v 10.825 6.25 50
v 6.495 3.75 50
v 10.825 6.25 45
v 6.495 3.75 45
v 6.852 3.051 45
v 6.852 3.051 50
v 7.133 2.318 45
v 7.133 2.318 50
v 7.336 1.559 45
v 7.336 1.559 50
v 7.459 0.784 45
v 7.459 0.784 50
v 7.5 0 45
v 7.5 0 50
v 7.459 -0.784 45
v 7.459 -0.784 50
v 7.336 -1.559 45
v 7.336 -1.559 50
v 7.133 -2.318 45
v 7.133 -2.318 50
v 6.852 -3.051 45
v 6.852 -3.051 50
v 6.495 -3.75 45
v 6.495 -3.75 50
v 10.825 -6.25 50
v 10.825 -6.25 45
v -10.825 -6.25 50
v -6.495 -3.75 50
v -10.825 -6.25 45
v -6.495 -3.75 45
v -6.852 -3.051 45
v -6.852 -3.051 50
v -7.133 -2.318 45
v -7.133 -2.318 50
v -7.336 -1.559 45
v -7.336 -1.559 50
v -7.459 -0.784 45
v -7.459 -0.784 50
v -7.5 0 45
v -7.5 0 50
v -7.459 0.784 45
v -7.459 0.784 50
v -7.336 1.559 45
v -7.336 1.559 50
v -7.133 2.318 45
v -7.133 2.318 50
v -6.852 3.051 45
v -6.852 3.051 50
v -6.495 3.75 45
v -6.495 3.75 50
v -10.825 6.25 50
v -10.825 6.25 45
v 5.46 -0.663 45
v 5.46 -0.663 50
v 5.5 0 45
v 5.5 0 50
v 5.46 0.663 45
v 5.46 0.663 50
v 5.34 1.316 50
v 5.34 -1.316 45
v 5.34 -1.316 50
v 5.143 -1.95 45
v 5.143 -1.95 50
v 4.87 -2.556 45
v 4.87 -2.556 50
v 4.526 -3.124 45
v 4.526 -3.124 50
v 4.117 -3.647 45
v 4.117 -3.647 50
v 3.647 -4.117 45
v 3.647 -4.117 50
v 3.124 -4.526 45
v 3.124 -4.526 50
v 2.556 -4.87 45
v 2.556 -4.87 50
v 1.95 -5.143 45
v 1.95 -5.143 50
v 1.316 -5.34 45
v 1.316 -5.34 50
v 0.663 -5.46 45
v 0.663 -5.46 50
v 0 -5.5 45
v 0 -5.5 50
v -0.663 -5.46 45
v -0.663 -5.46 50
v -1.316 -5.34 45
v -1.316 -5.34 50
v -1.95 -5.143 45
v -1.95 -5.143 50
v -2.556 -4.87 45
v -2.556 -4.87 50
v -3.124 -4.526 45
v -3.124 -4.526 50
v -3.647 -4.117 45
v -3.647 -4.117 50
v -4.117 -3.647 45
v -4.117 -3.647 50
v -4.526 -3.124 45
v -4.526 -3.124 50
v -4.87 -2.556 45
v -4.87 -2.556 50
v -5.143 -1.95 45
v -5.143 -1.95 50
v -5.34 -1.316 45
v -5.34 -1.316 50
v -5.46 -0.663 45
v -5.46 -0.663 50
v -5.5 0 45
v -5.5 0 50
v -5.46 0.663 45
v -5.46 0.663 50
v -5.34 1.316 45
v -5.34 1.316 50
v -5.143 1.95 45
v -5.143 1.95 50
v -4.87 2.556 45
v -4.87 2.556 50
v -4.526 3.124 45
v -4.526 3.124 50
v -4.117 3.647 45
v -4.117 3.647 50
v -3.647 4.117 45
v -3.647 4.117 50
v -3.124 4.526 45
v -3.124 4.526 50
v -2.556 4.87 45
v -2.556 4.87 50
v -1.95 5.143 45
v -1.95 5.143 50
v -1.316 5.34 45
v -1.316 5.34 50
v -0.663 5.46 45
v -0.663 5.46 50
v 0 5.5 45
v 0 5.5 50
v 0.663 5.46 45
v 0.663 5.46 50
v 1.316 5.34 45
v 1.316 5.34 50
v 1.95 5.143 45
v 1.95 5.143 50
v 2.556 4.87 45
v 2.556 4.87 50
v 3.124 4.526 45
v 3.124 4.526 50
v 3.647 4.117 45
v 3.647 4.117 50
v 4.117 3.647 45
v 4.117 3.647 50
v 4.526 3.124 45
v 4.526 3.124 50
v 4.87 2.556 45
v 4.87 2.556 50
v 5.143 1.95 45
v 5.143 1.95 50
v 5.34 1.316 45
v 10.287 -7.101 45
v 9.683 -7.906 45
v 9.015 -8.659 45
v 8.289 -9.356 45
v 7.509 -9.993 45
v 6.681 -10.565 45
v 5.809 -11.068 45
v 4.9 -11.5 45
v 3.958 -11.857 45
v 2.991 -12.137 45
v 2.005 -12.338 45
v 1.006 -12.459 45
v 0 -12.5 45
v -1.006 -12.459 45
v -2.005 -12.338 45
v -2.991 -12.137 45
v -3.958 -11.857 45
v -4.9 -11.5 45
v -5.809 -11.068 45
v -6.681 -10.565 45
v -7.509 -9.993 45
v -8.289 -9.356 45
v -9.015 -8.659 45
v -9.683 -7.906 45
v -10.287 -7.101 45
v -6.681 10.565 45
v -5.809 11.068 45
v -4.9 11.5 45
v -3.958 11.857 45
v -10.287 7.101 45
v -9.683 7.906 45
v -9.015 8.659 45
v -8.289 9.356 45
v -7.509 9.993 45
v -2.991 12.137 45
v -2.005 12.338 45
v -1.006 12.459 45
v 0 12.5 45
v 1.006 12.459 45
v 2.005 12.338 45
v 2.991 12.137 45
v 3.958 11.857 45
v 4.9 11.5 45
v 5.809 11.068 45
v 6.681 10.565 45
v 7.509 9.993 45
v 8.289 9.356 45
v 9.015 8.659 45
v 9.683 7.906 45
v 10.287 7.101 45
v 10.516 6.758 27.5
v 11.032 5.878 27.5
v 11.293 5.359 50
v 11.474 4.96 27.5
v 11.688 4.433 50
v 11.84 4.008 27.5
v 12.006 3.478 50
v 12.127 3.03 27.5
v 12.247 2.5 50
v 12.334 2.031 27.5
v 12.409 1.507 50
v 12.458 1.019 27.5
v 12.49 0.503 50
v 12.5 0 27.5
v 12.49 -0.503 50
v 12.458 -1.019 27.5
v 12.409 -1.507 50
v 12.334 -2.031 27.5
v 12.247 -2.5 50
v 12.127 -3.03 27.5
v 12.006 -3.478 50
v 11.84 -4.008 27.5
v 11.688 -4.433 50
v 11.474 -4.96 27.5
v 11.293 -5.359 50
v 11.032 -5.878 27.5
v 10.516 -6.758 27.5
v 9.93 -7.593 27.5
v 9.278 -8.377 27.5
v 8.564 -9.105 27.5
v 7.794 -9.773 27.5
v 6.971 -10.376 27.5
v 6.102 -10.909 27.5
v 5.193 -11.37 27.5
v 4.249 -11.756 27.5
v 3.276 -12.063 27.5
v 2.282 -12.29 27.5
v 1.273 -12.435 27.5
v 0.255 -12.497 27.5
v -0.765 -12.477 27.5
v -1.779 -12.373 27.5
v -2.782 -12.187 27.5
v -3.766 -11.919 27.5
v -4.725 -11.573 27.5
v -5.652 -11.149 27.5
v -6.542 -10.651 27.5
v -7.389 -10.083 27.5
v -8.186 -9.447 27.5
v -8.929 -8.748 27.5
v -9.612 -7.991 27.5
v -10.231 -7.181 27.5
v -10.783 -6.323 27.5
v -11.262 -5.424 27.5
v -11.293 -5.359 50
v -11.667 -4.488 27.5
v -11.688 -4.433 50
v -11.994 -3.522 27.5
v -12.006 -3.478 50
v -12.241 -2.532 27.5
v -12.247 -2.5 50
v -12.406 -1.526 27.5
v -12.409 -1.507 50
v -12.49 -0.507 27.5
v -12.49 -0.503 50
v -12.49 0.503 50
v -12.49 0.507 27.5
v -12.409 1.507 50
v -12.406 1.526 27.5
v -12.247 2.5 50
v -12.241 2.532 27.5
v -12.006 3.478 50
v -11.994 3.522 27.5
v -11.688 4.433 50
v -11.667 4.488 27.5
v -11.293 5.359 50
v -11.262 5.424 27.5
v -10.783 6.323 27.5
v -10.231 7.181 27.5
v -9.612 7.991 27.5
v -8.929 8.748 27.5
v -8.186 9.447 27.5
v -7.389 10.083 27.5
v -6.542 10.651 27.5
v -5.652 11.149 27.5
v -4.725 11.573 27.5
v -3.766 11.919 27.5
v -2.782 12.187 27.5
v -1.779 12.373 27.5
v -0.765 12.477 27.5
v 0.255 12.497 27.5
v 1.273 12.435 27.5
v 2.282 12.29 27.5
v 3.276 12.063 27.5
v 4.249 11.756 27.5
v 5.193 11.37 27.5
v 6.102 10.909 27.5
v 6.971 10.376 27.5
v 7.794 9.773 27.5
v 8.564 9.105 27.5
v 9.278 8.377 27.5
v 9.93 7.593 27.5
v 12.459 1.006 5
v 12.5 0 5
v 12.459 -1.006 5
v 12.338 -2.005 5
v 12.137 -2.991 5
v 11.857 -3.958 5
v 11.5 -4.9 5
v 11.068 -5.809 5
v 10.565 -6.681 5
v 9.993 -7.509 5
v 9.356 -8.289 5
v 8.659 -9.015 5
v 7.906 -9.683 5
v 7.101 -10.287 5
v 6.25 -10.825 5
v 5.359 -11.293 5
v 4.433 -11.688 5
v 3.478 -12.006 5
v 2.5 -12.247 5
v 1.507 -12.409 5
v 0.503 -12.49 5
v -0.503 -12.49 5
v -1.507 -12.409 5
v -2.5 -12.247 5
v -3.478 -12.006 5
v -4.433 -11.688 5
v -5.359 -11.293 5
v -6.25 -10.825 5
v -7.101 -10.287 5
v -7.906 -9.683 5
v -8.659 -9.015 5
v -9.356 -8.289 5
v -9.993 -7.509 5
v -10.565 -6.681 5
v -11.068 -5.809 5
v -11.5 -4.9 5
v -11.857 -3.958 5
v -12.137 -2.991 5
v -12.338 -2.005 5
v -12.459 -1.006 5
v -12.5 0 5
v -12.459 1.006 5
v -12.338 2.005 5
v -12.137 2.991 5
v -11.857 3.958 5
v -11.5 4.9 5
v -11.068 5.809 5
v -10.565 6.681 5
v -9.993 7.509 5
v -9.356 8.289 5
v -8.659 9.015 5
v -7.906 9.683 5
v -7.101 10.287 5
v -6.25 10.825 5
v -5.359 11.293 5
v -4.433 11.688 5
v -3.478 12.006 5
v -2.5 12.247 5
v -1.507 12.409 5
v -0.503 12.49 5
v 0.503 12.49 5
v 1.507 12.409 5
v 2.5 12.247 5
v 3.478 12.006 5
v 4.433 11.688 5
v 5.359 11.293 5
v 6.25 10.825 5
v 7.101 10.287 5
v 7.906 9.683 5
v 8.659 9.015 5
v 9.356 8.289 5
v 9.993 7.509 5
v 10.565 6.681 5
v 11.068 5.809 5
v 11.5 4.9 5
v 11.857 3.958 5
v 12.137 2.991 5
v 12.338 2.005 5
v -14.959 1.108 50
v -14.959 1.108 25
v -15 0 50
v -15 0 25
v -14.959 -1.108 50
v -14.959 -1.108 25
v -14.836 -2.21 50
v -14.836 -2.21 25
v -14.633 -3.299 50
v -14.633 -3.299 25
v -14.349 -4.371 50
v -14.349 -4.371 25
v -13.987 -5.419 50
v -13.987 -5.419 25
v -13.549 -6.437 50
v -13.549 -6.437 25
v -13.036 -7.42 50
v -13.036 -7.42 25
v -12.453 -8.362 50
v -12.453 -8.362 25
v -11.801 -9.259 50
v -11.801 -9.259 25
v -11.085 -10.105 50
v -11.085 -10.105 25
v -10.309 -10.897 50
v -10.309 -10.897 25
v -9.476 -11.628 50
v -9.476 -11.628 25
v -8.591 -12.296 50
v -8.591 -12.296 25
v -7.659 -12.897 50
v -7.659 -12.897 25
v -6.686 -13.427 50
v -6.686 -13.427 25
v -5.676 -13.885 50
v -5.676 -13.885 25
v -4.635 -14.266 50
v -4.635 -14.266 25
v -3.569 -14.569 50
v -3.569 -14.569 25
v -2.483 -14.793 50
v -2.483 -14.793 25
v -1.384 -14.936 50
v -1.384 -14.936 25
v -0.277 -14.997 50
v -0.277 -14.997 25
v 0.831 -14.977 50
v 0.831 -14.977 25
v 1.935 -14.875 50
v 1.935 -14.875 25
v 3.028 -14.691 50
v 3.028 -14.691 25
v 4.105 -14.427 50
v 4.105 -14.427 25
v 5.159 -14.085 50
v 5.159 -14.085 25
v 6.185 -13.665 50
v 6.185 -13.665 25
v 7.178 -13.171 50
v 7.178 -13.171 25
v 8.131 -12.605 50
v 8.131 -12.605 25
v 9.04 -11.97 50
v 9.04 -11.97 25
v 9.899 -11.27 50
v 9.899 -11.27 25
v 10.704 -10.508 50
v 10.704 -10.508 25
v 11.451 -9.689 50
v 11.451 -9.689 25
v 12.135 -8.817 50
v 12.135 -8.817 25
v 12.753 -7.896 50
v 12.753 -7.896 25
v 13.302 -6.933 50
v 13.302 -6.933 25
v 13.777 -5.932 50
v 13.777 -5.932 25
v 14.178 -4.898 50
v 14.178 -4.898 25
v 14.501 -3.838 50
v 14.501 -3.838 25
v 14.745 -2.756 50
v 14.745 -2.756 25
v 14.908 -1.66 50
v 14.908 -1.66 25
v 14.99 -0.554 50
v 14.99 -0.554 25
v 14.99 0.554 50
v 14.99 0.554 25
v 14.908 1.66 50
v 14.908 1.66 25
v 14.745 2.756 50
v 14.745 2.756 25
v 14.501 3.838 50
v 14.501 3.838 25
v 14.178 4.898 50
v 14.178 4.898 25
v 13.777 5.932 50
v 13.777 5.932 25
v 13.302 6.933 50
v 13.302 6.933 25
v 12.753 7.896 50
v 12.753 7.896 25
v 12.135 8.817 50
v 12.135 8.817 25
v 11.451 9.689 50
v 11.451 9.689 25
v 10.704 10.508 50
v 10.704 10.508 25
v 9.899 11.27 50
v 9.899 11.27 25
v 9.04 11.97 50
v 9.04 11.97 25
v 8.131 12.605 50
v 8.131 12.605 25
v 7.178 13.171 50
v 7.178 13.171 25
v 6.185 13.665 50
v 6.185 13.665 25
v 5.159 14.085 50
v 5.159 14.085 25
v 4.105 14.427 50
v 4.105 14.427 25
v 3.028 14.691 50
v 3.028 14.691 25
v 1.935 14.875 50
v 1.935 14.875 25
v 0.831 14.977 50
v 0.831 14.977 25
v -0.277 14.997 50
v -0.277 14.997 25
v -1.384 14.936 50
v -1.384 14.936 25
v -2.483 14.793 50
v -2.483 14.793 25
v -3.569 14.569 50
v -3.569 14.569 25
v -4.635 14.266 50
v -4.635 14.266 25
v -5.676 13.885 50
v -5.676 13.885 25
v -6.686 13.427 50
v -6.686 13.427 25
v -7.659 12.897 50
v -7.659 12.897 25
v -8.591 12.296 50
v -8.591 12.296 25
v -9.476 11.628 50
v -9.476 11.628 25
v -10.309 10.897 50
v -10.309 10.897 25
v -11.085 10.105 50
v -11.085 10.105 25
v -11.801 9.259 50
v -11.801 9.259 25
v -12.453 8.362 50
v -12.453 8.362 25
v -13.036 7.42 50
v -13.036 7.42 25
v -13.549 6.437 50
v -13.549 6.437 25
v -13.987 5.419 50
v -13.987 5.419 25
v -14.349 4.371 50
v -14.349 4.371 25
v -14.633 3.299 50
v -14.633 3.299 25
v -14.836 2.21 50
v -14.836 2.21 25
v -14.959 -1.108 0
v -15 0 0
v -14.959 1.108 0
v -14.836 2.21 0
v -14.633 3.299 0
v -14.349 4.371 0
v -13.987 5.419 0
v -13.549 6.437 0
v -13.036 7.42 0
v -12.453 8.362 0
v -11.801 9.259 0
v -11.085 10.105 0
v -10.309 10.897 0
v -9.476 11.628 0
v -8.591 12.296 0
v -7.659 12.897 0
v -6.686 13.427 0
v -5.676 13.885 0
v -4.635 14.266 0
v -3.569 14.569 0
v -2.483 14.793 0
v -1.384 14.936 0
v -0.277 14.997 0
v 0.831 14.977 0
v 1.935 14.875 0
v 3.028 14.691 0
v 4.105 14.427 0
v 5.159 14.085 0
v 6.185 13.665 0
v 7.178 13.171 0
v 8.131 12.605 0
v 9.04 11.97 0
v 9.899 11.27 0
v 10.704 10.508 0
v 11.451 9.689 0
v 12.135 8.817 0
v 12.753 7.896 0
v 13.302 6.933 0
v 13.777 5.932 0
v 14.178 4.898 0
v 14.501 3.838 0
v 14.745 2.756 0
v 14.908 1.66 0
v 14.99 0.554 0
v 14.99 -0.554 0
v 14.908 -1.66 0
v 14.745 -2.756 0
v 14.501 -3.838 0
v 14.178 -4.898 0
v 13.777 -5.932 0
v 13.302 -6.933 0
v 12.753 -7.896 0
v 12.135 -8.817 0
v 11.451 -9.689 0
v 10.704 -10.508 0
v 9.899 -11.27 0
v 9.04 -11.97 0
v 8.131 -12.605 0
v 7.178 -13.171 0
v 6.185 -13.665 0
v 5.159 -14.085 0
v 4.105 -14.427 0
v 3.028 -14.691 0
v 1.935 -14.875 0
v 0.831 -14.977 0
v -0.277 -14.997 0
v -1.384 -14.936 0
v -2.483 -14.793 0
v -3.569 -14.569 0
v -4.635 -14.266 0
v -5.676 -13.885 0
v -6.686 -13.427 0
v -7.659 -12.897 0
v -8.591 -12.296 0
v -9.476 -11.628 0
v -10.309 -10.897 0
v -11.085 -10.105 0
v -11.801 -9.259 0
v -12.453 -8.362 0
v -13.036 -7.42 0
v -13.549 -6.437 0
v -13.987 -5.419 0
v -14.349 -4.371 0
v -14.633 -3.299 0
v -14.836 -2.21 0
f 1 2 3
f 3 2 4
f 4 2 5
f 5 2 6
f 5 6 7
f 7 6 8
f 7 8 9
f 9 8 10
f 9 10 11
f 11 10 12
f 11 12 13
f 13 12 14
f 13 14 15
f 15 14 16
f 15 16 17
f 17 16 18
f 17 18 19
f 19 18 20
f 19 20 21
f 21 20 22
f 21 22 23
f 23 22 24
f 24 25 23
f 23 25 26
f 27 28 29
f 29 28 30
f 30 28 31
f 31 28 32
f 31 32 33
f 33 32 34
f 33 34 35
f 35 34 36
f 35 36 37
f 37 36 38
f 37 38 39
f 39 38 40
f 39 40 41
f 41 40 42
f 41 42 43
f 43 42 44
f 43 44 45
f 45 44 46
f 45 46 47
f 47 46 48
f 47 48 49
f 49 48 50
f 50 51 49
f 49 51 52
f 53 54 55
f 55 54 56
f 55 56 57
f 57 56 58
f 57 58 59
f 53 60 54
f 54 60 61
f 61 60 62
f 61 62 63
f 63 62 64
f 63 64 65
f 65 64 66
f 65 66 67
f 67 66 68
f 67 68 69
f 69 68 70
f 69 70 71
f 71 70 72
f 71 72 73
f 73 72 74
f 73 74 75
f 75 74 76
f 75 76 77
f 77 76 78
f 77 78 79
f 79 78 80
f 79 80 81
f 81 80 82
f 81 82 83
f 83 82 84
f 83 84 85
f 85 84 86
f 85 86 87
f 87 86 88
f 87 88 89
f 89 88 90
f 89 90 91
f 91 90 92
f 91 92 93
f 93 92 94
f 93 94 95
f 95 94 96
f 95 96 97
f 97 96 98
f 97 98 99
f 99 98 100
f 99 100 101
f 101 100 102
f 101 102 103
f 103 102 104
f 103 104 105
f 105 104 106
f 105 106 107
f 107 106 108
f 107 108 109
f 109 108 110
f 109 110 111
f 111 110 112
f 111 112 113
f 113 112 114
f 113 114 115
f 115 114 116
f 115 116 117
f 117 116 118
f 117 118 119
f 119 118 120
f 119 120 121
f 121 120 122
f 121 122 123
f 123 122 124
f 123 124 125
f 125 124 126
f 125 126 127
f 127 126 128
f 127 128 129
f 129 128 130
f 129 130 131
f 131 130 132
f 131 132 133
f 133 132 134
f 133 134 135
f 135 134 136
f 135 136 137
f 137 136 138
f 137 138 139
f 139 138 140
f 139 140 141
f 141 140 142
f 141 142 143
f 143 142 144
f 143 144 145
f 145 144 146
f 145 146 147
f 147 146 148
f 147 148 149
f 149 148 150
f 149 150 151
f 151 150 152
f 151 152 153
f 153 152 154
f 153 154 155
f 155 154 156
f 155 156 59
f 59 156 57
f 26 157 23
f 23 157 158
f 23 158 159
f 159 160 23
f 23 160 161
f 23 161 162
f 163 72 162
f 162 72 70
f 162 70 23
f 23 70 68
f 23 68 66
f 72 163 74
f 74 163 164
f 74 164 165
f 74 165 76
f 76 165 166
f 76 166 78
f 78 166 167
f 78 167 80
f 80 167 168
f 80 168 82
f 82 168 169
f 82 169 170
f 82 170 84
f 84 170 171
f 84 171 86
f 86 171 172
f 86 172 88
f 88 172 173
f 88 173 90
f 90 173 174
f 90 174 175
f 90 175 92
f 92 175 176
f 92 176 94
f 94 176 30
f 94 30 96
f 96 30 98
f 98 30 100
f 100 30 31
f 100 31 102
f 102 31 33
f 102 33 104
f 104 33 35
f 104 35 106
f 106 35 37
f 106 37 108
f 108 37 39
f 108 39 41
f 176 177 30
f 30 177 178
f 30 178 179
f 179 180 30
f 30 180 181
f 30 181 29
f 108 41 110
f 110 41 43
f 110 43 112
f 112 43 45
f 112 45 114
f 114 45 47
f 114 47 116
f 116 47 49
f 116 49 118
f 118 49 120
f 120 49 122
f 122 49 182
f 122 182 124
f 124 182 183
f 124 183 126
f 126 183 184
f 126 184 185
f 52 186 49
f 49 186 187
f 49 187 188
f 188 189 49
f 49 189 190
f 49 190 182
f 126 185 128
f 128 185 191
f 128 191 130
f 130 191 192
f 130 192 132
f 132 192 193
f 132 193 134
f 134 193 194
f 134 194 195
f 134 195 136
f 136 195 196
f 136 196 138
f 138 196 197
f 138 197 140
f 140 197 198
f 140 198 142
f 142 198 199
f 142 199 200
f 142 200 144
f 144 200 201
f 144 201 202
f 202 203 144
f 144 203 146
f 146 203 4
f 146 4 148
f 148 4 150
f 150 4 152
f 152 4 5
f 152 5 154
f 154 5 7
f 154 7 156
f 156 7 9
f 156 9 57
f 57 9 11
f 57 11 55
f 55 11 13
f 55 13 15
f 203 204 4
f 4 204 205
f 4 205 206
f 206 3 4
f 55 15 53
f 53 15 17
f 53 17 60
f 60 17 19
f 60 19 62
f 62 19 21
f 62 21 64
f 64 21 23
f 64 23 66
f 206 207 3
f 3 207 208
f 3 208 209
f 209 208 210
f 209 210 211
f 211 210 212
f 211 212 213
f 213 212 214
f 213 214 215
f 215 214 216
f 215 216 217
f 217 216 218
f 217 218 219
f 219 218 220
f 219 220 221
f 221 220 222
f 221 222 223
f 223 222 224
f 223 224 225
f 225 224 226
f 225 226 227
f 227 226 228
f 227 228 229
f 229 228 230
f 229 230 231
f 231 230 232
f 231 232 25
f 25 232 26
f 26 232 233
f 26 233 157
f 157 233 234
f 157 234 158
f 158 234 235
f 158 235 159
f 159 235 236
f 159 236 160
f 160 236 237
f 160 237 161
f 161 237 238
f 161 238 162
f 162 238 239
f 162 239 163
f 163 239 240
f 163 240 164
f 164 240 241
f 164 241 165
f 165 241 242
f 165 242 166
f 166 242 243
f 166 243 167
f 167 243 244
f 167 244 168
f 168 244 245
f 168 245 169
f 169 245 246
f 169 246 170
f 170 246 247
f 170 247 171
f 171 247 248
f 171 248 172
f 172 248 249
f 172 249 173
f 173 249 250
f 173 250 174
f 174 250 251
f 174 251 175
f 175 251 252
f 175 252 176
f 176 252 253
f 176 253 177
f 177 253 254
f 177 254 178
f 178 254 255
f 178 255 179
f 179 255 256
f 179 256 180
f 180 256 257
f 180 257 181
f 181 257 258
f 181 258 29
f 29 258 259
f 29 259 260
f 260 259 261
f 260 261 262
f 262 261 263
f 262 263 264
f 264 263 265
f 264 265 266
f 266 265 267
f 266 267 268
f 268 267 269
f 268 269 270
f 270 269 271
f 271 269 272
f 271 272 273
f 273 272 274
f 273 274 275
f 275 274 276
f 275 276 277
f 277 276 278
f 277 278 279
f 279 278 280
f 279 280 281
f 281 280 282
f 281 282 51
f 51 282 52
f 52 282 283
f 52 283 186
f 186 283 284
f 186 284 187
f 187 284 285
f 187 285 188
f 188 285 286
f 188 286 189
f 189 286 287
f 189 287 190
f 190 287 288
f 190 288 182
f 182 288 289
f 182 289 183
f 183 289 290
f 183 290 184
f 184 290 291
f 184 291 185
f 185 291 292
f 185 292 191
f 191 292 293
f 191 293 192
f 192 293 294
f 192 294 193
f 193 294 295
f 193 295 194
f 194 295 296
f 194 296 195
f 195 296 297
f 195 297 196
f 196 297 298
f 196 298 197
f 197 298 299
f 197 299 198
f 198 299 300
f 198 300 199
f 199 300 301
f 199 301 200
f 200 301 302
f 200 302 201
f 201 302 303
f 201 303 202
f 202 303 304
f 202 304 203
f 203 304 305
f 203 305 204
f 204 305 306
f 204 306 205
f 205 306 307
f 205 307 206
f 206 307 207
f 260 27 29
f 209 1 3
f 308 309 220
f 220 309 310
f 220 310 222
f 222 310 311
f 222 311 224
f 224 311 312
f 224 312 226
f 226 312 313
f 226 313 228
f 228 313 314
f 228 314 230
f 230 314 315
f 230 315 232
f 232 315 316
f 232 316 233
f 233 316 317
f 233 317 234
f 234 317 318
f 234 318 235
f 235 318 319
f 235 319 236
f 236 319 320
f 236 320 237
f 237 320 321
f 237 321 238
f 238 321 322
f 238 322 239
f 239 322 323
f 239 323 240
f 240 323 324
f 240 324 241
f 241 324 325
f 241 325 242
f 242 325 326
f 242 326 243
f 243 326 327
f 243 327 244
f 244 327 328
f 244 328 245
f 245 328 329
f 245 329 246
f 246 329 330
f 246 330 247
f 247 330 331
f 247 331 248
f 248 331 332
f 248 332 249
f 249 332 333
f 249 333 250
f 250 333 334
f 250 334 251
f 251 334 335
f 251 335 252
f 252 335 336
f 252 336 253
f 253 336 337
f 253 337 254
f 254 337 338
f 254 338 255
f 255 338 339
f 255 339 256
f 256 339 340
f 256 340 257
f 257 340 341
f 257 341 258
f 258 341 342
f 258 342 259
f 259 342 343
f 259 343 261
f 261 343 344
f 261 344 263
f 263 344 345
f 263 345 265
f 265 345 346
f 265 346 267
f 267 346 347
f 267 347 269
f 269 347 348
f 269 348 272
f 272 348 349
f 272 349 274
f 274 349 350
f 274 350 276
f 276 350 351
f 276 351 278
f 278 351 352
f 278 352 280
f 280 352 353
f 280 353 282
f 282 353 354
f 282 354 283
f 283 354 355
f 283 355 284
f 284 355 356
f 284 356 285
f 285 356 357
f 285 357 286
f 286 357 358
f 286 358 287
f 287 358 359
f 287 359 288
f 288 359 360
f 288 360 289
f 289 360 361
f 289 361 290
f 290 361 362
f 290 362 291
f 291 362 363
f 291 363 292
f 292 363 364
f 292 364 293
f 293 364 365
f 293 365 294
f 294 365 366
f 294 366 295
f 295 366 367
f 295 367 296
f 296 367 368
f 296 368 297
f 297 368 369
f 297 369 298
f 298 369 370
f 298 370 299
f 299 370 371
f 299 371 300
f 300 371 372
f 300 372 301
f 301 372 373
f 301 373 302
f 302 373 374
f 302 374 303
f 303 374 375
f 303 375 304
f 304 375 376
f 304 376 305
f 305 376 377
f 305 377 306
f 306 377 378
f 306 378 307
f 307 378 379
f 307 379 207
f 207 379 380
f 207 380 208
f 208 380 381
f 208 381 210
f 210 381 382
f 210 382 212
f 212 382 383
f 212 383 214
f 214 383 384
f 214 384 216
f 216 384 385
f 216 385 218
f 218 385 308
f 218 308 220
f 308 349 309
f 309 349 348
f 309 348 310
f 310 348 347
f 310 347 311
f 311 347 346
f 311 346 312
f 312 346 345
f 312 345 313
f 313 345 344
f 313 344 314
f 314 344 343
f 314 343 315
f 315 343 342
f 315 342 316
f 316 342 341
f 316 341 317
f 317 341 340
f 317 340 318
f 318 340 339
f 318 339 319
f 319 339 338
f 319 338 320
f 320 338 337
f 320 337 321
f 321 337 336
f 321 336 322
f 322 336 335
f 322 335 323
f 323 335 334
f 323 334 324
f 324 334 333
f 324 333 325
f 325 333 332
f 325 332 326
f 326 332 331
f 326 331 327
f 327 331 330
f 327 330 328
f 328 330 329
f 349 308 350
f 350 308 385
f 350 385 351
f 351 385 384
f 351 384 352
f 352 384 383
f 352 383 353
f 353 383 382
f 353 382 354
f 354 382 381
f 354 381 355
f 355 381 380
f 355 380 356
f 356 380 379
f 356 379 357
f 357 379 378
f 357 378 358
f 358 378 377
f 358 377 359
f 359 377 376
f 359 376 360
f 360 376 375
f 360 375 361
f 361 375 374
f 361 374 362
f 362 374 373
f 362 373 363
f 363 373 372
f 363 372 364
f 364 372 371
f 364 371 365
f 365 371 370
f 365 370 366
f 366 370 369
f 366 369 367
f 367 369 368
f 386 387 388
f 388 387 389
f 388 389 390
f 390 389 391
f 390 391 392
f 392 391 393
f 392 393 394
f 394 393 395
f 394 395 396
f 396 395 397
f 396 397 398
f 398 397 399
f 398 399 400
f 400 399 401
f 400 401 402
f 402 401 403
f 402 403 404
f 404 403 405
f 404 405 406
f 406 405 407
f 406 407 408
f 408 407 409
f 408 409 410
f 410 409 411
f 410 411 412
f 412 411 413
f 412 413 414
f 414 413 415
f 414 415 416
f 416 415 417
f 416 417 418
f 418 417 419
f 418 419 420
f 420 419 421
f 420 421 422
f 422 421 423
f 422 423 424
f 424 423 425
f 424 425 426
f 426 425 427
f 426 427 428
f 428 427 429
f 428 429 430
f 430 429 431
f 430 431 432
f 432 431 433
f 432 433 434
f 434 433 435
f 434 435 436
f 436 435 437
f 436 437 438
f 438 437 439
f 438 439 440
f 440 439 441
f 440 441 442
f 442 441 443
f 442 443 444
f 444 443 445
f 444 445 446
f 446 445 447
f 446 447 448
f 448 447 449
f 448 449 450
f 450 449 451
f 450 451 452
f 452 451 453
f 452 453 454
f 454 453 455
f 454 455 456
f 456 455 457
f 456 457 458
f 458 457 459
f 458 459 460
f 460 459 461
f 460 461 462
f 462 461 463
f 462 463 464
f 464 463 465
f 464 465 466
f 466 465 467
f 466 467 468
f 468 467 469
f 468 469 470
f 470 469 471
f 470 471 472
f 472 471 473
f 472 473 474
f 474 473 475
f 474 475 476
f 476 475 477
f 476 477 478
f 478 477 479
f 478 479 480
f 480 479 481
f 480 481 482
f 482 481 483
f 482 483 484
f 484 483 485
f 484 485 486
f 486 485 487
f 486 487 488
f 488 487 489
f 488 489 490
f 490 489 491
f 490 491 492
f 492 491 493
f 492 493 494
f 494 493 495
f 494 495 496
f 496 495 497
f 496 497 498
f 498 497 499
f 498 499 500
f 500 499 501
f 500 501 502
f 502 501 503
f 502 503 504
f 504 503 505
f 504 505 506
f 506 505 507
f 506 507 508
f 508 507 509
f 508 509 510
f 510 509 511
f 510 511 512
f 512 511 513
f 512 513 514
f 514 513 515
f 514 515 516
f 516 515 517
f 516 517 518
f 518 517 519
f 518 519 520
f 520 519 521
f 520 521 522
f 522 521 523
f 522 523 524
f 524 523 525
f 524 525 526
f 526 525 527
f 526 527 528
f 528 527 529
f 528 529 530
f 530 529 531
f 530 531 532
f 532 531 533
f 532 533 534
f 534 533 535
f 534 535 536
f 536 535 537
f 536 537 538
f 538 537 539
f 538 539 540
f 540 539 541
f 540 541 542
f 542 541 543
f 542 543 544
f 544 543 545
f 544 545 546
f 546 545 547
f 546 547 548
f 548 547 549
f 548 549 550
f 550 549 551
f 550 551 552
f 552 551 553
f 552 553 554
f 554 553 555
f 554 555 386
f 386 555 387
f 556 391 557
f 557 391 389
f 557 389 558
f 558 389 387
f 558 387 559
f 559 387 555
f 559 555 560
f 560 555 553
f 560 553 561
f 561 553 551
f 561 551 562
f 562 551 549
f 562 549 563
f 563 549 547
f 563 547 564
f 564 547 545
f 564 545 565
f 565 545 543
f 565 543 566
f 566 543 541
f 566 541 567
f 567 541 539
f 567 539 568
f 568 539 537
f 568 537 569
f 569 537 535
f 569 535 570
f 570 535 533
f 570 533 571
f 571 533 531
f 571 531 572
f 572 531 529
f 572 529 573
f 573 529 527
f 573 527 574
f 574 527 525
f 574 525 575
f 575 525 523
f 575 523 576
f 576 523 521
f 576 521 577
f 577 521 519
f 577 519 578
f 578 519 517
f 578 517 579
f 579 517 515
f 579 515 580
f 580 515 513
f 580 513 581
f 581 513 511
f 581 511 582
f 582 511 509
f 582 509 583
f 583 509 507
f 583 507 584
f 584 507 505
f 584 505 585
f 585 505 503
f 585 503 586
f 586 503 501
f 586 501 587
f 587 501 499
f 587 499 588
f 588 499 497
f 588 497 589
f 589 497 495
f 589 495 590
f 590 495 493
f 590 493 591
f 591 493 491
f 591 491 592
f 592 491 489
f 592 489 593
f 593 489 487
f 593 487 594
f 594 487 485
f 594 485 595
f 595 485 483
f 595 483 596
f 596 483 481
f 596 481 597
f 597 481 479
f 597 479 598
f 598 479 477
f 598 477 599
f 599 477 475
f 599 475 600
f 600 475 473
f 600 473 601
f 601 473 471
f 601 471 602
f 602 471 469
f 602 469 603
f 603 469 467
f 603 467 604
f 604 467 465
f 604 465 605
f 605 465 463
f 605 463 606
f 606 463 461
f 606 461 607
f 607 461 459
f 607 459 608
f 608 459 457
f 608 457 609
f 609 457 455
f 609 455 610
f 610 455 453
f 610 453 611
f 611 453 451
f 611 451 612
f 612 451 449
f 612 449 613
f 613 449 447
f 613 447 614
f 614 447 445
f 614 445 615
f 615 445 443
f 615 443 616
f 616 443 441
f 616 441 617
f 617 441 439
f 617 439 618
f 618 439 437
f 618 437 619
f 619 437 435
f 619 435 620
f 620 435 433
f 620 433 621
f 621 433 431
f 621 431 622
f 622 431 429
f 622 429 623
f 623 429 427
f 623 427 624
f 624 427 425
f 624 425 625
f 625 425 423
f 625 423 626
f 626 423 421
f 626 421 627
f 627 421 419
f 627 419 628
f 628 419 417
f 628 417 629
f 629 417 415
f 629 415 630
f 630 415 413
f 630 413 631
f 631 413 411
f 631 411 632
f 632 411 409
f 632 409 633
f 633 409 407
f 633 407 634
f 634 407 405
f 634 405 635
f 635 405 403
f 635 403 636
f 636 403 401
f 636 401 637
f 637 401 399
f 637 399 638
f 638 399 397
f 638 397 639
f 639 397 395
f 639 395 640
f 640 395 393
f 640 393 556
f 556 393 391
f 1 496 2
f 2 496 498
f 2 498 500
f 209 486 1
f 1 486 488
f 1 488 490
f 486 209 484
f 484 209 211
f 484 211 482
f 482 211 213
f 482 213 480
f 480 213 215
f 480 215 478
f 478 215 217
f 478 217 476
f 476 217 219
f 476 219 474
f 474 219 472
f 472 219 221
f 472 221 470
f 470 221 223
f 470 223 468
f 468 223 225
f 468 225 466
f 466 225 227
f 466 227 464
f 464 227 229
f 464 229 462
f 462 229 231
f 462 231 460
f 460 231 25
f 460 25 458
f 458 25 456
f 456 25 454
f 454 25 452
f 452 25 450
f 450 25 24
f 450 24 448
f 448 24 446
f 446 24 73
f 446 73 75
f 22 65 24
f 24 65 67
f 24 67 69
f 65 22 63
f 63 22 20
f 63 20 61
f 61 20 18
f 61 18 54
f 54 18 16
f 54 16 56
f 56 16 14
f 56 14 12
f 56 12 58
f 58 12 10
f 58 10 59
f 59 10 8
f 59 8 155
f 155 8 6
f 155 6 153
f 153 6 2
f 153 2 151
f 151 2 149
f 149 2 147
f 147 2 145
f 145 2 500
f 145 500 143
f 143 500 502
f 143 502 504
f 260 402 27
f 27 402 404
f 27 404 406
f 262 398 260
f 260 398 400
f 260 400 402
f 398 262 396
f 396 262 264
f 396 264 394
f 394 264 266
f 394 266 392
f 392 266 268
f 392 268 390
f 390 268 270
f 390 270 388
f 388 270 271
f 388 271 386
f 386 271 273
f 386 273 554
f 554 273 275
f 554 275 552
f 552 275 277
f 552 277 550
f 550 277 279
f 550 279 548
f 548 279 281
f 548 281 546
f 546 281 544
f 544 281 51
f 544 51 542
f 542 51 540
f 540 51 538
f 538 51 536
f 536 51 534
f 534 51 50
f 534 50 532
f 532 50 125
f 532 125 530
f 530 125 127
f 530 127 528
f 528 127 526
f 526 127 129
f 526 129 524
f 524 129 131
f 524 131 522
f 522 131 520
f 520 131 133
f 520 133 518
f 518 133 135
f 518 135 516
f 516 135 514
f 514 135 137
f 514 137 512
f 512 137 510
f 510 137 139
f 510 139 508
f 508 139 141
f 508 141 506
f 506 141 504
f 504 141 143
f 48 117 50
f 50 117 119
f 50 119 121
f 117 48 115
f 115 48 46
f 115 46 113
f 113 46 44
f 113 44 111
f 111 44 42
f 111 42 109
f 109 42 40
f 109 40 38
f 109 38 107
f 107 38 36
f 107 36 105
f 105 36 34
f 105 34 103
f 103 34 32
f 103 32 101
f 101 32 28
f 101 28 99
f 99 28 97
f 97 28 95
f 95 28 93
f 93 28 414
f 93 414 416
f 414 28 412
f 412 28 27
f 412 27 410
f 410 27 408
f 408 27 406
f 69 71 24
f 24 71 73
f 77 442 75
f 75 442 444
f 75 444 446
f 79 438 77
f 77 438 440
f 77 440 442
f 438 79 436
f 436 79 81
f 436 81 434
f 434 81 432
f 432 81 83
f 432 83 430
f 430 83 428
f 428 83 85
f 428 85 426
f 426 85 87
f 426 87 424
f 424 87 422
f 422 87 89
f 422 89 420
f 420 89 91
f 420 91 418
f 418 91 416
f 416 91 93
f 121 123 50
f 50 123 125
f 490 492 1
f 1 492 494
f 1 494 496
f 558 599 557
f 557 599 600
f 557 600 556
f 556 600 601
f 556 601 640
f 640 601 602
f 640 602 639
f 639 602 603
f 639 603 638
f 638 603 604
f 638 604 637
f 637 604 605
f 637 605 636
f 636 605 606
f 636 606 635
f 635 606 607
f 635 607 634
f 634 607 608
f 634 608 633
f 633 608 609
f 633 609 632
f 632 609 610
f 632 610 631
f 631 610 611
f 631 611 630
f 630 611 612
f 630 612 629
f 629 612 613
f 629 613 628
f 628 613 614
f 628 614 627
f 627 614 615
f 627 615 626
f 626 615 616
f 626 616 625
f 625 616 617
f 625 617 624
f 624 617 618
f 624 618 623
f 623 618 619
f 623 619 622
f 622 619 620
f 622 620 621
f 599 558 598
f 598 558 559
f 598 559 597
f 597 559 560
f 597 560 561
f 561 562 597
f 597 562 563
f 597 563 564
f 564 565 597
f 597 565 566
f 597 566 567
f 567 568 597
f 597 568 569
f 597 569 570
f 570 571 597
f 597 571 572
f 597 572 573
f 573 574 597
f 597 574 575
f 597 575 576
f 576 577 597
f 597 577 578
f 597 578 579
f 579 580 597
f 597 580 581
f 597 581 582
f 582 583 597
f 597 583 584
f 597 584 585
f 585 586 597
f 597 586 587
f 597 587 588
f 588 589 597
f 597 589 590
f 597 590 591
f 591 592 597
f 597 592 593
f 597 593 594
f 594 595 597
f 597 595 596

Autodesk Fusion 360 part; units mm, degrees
sketch "Sketch1" plane through (0, 0, 0) normal (0, 0, 1) x (1, 0, 0)
  circle A0 centre (0, 0) radius 15
  dimension "d2" = 30
extrude "Extrude1" add sketch "Sketch1" along normal blind 50
sketch "Sketch2" plane through (0, 0, 50) normal (0, 0, 1) x (-1, 0, 0)
  circle A0 centre (0, 0) radius 15
  circle A1 centre (0, 0) radius 12.5
  dimension "d5" = 25
extrude "Extrude2" cut sketch "Sketch2" against normal blind 45 contours A1
sketch "Sketch4" plane through (0, 0, 50) normal (0, 0, 1) x (-1, 0, 0)
  circle A0 centre (0, 0) radius 12.5
  circle A1 centre (0, 0) radius 15
  circle A2 centre (0, 0) radius 15
  circle A3 centre (0, 0) radius 5.5
  dimension "d8" = 11
extrude "Extrude3" add sketch "Sketch4" against normal blind 5 contours A0
sketch "Sketch5" plane through (0, 0, 50) normal (0, 0, 1) x (-1, 0, 0)
  circle A0 centre (0, 0) radius 5.5
  circle A1 centre (0, 0) radius 15
  circle A2 centre (0, 0) radius 12.5
  circle A3 centre (0, 0) radius 7.5
  line L0 (0, 0) -> (12.5, 0) construction
  line L1 (0, 0) -> (-10.8253, 6.25)
  line L2 (0, 0) -> (12.5, 0) construction
  line L3 (0, 0) -> (-10.8253, -6.25)
  line L4 (0, 0) -> (12.5, 0) construction
  line L5 (0, 0) -> (10.8253, 6.25)
  line L6 (-10.8253, 6.25) -> (14.1746, 6.25) construction
  line L7 (0, 0) -> (10.8253, -6.25)
  line L8 (0, 0) -> (12.5, 0) construction
  dimension "d11" = 25
  dimension "d12" = 15
  dimension "d14" = 150
  dimension "d15" = 150
  dimension "d18" = 30
extrude "Extrude4" cut sketch "Sketch5" against normal blind 5 contours A2 A3 L5 L7 | A2 A3 L1 L3
